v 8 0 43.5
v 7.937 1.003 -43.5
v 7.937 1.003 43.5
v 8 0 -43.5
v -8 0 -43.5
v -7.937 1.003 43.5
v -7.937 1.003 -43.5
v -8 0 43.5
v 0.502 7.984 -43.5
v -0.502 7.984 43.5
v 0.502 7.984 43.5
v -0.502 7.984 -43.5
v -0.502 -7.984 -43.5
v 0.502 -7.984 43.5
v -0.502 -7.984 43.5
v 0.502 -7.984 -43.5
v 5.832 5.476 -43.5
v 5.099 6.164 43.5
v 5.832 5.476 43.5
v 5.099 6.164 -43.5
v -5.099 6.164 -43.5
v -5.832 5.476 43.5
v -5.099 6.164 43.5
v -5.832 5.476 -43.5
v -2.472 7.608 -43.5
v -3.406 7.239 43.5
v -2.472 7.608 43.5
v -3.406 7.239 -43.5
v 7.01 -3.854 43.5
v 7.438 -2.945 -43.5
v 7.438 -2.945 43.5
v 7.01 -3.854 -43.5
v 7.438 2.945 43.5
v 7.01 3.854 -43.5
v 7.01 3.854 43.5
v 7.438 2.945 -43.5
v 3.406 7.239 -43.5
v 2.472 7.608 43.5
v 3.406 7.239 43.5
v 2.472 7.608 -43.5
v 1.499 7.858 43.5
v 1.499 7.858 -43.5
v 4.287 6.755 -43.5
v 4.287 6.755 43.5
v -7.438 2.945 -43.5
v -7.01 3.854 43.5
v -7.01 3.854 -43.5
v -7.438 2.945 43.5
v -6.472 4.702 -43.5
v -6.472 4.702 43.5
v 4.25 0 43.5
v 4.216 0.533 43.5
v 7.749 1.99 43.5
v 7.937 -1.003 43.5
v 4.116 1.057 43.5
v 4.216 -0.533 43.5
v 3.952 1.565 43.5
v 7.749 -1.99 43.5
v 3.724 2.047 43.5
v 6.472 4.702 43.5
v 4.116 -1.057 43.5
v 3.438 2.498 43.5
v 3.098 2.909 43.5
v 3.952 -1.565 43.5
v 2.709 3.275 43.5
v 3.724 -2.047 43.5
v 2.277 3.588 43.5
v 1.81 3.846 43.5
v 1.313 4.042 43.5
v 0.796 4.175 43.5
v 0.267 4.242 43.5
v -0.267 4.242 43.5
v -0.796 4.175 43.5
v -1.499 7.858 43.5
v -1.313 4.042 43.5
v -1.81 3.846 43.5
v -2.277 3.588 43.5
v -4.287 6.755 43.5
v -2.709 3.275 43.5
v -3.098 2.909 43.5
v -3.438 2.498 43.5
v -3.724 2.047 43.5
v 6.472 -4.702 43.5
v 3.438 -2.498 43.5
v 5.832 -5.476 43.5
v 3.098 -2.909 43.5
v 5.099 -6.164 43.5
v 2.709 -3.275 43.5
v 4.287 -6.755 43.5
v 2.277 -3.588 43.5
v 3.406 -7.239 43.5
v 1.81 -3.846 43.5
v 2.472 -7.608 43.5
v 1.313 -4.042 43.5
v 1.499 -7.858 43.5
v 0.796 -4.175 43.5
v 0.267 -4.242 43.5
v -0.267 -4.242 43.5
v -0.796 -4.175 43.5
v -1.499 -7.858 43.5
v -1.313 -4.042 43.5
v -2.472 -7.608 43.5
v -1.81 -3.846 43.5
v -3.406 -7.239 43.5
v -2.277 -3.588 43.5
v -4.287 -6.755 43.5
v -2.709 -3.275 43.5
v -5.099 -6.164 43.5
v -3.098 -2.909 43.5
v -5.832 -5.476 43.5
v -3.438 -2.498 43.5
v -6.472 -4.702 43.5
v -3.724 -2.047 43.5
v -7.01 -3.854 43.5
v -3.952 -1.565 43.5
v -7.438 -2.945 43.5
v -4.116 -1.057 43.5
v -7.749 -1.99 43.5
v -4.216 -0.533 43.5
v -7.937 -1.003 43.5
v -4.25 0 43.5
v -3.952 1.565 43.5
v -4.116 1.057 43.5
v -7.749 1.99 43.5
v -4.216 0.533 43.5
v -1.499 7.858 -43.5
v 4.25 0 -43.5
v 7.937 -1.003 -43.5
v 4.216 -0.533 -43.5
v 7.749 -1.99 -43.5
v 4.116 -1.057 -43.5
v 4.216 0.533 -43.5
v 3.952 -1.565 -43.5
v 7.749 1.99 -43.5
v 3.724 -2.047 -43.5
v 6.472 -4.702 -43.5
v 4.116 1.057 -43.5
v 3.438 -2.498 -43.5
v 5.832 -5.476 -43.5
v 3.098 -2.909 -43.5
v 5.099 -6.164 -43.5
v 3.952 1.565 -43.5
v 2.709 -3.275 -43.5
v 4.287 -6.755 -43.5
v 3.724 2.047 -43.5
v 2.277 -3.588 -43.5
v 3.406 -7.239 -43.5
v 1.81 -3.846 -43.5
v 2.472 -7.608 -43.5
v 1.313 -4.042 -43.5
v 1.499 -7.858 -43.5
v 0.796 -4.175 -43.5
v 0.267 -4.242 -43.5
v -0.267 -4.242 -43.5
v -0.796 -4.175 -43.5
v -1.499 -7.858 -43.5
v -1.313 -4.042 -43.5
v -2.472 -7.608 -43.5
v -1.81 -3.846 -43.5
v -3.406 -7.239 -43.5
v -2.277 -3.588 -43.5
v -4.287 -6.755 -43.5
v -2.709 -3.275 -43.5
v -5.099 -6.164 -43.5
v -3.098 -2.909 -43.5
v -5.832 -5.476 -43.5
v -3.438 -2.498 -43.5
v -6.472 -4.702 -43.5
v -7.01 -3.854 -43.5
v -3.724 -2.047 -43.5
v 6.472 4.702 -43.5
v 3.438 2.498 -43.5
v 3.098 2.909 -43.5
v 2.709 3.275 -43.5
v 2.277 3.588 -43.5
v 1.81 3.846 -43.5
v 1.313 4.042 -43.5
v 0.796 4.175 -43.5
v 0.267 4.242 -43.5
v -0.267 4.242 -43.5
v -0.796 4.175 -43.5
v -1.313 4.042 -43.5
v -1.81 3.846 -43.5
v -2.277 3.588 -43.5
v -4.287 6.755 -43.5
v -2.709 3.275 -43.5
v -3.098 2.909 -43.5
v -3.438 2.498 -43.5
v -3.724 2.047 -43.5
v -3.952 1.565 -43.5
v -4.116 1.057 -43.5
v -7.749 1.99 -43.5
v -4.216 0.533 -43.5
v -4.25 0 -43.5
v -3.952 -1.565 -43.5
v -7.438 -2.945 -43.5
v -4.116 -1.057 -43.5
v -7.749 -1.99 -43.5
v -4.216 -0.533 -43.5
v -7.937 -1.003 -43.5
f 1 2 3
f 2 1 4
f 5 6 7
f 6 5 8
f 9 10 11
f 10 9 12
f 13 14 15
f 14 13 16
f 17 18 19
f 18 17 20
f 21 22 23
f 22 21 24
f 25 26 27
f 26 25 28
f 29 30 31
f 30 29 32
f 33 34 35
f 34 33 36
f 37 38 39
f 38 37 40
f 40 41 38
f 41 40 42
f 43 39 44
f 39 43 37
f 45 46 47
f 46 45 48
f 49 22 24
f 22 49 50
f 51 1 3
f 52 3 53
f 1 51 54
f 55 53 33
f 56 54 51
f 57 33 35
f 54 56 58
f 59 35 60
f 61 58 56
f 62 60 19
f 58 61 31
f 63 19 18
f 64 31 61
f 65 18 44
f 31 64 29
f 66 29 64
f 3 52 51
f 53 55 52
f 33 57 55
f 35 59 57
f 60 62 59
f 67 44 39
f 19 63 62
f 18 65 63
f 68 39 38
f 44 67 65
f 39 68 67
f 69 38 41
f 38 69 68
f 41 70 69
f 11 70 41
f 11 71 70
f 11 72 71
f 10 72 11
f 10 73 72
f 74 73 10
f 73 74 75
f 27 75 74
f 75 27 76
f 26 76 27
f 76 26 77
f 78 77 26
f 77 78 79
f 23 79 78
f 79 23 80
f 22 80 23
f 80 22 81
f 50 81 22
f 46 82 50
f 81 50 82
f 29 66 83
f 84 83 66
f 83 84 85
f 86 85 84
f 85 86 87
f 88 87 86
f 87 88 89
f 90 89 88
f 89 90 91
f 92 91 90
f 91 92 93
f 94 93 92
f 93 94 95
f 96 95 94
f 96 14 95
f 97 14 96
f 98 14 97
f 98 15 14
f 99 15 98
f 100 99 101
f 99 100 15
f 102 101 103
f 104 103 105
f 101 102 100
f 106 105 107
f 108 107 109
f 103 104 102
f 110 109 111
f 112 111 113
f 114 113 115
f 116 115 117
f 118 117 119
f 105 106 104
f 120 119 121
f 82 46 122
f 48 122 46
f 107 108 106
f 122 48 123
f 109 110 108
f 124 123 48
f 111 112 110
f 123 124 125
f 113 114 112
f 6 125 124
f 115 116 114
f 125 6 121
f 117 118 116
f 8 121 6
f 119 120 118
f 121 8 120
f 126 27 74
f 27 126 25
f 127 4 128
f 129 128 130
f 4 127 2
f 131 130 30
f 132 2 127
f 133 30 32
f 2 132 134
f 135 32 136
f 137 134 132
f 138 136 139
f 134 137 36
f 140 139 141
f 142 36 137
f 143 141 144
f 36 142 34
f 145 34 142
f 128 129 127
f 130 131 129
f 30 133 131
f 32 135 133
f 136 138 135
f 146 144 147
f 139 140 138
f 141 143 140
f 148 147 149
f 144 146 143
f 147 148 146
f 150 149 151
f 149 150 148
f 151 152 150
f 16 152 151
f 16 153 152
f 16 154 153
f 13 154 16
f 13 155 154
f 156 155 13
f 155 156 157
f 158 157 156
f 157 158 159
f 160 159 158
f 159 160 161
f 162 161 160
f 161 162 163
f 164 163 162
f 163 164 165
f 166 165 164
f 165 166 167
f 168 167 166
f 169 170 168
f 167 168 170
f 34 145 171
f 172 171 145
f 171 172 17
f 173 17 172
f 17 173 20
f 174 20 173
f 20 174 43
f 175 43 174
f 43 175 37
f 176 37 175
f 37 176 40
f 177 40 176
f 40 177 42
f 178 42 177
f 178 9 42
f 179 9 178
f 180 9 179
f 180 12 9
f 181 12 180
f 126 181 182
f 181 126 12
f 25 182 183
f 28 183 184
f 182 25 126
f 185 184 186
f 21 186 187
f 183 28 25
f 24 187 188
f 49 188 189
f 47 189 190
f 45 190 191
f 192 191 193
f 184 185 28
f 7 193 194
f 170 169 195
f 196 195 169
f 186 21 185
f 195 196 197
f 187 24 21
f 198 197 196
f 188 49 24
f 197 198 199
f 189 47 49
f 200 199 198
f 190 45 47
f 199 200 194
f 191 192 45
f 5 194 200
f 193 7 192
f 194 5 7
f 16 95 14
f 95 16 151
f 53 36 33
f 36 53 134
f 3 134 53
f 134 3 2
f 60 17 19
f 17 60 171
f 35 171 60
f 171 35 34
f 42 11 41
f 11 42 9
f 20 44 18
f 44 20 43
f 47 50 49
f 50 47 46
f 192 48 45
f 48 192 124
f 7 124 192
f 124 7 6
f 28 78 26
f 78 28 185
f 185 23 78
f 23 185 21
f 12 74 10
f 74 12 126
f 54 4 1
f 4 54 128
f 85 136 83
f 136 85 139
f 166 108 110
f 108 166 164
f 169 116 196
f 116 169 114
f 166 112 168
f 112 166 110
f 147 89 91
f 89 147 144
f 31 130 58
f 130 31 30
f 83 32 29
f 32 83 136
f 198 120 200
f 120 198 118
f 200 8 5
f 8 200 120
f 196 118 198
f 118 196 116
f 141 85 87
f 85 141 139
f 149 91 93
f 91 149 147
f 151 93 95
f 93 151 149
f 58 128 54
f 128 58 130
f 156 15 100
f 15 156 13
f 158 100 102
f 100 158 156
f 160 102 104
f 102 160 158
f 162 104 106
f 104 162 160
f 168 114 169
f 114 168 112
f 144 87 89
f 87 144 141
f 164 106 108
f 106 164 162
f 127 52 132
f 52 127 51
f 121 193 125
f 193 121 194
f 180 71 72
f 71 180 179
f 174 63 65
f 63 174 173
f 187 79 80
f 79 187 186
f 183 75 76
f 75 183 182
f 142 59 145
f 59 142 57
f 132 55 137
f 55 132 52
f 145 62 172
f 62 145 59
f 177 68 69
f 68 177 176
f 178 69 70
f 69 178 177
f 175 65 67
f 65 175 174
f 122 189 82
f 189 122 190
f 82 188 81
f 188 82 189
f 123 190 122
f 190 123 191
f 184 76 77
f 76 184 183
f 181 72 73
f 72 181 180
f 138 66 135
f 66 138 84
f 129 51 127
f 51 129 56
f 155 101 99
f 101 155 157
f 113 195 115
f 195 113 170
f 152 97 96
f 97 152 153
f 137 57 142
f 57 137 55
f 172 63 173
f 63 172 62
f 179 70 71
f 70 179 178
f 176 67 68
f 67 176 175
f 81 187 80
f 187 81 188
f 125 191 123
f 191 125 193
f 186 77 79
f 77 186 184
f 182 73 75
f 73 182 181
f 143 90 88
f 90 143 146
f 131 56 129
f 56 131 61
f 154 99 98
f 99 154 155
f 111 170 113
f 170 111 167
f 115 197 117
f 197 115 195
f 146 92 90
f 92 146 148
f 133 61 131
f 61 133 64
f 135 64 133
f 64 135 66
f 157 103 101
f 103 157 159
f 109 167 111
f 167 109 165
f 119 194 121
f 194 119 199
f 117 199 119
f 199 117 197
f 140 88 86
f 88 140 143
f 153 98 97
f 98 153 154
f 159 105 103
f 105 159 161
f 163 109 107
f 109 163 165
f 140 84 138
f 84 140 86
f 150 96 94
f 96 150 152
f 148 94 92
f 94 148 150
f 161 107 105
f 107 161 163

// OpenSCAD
$fn = 50;


difference() {
	union() {
		translate(v = [0, 0, -43.5000000000]) {
			cylinder(h = 87, r = 8.0000000000);
		}
	}
	union() {
		translate(v = [0, 0, -100.0000000000]) {
			cylinder(h = 200, r = 4.2500000000);
		}
	}
}
